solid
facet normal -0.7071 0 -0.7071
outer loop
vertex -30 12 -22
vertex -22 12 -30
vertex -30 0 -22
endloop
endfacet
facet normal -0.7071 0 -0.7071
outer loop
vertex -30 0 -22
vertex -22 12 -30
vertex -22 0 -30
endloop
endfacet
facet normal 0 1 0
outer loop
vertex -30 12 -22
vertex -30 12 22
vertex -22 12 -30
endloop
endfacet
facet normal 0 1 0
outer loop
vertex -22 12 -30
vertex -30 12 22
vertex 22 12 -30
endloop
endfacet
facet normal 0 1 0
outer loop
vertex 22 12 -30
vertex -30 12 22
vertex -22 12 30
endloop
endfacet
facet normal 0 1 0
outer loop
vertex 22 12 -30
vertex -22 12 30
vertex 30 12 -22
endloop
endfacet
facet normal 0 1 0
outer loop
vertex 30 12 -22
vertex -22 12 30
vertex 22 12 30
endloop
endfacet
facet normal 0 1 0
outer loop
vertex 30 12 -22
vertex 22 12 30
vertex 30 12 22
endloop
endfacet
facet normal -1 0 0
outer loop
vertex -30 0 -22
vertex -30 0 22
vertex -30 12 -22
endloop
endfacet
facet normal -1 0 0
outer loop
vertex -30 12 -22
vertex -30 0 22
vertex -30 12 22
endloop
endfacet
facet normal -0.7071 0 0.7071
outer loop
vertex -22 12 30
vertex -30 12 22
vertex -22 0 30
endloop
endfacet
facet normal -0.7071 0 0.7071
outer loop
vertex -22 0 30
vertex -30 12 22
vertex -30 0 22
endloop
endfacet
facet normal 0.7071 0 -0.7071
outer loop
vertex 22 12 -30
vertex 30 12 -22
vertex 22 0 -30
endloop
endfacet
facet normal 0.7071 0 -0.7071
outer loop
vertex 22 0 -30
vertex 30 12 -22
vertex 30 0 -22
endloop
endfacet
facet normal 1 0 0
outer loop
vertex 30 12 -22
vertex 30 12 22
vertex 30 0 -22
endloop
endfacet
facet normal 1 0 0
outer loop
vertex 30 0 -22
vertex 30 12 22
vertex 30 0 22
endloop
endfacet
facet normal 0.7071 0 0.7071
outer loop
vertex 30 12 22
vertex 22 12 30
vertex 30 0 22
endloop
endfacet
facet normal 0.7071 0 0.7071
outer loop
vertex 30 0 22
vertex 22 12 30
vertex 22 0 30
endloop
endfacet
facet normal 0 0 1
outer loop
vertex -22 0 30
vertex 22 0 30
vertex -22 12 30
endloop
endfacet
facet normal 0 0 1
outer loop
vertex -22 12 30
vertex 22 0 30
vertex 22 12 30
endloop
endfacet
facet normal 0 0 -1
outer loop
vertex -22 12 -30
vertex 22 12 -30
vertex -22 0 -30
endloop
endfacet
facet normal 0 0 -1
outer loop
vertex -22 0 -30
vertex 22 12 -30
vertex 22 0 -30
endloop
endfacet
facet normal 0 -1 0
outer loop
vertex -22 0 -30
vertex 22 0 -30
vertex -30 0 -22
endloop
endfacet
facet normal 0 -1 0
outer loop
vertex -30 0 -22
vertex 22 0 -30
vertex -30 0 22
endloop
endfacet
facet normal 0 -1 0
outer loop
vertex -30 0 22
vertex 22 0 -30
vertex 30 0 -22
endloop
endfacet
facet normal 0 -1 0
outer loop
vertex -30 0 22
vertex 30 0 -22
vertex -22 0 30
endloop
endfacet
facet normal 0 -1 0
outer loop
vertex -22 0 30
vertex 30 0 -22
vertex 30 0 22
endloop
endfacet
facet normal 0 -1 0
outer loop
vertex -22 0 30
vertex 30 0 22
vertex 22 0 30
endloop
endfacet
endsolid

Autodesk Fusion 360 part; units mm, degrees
sketch "Sketch1" plane through (0, 0, 0) normal (0, 1, 0) x (1, 0, 0)
  line L0 (30, 30) -> (-30, 30)
  line L1 (-30, 30) -> (-30, -30)
  line L2 (-30, -30) -> (30, -30)
  line L3 (30, -30) -> (30, 30)
  line L4 (30, 30) -> (-30, -30) construction
  line L5 (-30, 30) -> (30, -30) construction
  dimension "d1" = 60
  dimension "d2" = 60
extrude "Extrude1" add sketch "Sketch1" along normal blind 12
chamfer "Chamfer1" distance 8 angle 45 1 edges at (30, 6, 30)
chamfer "Chamfer2" distance 8 angle 45 1 edges at (30, 6, -30)
chamfer "Chamfer3" distance 8 angle 45 1 edges at (-30, 6, 30)
chamfer "Chamfer4" distance 8 angle 45 1 edges at (-30, 6, -30)
